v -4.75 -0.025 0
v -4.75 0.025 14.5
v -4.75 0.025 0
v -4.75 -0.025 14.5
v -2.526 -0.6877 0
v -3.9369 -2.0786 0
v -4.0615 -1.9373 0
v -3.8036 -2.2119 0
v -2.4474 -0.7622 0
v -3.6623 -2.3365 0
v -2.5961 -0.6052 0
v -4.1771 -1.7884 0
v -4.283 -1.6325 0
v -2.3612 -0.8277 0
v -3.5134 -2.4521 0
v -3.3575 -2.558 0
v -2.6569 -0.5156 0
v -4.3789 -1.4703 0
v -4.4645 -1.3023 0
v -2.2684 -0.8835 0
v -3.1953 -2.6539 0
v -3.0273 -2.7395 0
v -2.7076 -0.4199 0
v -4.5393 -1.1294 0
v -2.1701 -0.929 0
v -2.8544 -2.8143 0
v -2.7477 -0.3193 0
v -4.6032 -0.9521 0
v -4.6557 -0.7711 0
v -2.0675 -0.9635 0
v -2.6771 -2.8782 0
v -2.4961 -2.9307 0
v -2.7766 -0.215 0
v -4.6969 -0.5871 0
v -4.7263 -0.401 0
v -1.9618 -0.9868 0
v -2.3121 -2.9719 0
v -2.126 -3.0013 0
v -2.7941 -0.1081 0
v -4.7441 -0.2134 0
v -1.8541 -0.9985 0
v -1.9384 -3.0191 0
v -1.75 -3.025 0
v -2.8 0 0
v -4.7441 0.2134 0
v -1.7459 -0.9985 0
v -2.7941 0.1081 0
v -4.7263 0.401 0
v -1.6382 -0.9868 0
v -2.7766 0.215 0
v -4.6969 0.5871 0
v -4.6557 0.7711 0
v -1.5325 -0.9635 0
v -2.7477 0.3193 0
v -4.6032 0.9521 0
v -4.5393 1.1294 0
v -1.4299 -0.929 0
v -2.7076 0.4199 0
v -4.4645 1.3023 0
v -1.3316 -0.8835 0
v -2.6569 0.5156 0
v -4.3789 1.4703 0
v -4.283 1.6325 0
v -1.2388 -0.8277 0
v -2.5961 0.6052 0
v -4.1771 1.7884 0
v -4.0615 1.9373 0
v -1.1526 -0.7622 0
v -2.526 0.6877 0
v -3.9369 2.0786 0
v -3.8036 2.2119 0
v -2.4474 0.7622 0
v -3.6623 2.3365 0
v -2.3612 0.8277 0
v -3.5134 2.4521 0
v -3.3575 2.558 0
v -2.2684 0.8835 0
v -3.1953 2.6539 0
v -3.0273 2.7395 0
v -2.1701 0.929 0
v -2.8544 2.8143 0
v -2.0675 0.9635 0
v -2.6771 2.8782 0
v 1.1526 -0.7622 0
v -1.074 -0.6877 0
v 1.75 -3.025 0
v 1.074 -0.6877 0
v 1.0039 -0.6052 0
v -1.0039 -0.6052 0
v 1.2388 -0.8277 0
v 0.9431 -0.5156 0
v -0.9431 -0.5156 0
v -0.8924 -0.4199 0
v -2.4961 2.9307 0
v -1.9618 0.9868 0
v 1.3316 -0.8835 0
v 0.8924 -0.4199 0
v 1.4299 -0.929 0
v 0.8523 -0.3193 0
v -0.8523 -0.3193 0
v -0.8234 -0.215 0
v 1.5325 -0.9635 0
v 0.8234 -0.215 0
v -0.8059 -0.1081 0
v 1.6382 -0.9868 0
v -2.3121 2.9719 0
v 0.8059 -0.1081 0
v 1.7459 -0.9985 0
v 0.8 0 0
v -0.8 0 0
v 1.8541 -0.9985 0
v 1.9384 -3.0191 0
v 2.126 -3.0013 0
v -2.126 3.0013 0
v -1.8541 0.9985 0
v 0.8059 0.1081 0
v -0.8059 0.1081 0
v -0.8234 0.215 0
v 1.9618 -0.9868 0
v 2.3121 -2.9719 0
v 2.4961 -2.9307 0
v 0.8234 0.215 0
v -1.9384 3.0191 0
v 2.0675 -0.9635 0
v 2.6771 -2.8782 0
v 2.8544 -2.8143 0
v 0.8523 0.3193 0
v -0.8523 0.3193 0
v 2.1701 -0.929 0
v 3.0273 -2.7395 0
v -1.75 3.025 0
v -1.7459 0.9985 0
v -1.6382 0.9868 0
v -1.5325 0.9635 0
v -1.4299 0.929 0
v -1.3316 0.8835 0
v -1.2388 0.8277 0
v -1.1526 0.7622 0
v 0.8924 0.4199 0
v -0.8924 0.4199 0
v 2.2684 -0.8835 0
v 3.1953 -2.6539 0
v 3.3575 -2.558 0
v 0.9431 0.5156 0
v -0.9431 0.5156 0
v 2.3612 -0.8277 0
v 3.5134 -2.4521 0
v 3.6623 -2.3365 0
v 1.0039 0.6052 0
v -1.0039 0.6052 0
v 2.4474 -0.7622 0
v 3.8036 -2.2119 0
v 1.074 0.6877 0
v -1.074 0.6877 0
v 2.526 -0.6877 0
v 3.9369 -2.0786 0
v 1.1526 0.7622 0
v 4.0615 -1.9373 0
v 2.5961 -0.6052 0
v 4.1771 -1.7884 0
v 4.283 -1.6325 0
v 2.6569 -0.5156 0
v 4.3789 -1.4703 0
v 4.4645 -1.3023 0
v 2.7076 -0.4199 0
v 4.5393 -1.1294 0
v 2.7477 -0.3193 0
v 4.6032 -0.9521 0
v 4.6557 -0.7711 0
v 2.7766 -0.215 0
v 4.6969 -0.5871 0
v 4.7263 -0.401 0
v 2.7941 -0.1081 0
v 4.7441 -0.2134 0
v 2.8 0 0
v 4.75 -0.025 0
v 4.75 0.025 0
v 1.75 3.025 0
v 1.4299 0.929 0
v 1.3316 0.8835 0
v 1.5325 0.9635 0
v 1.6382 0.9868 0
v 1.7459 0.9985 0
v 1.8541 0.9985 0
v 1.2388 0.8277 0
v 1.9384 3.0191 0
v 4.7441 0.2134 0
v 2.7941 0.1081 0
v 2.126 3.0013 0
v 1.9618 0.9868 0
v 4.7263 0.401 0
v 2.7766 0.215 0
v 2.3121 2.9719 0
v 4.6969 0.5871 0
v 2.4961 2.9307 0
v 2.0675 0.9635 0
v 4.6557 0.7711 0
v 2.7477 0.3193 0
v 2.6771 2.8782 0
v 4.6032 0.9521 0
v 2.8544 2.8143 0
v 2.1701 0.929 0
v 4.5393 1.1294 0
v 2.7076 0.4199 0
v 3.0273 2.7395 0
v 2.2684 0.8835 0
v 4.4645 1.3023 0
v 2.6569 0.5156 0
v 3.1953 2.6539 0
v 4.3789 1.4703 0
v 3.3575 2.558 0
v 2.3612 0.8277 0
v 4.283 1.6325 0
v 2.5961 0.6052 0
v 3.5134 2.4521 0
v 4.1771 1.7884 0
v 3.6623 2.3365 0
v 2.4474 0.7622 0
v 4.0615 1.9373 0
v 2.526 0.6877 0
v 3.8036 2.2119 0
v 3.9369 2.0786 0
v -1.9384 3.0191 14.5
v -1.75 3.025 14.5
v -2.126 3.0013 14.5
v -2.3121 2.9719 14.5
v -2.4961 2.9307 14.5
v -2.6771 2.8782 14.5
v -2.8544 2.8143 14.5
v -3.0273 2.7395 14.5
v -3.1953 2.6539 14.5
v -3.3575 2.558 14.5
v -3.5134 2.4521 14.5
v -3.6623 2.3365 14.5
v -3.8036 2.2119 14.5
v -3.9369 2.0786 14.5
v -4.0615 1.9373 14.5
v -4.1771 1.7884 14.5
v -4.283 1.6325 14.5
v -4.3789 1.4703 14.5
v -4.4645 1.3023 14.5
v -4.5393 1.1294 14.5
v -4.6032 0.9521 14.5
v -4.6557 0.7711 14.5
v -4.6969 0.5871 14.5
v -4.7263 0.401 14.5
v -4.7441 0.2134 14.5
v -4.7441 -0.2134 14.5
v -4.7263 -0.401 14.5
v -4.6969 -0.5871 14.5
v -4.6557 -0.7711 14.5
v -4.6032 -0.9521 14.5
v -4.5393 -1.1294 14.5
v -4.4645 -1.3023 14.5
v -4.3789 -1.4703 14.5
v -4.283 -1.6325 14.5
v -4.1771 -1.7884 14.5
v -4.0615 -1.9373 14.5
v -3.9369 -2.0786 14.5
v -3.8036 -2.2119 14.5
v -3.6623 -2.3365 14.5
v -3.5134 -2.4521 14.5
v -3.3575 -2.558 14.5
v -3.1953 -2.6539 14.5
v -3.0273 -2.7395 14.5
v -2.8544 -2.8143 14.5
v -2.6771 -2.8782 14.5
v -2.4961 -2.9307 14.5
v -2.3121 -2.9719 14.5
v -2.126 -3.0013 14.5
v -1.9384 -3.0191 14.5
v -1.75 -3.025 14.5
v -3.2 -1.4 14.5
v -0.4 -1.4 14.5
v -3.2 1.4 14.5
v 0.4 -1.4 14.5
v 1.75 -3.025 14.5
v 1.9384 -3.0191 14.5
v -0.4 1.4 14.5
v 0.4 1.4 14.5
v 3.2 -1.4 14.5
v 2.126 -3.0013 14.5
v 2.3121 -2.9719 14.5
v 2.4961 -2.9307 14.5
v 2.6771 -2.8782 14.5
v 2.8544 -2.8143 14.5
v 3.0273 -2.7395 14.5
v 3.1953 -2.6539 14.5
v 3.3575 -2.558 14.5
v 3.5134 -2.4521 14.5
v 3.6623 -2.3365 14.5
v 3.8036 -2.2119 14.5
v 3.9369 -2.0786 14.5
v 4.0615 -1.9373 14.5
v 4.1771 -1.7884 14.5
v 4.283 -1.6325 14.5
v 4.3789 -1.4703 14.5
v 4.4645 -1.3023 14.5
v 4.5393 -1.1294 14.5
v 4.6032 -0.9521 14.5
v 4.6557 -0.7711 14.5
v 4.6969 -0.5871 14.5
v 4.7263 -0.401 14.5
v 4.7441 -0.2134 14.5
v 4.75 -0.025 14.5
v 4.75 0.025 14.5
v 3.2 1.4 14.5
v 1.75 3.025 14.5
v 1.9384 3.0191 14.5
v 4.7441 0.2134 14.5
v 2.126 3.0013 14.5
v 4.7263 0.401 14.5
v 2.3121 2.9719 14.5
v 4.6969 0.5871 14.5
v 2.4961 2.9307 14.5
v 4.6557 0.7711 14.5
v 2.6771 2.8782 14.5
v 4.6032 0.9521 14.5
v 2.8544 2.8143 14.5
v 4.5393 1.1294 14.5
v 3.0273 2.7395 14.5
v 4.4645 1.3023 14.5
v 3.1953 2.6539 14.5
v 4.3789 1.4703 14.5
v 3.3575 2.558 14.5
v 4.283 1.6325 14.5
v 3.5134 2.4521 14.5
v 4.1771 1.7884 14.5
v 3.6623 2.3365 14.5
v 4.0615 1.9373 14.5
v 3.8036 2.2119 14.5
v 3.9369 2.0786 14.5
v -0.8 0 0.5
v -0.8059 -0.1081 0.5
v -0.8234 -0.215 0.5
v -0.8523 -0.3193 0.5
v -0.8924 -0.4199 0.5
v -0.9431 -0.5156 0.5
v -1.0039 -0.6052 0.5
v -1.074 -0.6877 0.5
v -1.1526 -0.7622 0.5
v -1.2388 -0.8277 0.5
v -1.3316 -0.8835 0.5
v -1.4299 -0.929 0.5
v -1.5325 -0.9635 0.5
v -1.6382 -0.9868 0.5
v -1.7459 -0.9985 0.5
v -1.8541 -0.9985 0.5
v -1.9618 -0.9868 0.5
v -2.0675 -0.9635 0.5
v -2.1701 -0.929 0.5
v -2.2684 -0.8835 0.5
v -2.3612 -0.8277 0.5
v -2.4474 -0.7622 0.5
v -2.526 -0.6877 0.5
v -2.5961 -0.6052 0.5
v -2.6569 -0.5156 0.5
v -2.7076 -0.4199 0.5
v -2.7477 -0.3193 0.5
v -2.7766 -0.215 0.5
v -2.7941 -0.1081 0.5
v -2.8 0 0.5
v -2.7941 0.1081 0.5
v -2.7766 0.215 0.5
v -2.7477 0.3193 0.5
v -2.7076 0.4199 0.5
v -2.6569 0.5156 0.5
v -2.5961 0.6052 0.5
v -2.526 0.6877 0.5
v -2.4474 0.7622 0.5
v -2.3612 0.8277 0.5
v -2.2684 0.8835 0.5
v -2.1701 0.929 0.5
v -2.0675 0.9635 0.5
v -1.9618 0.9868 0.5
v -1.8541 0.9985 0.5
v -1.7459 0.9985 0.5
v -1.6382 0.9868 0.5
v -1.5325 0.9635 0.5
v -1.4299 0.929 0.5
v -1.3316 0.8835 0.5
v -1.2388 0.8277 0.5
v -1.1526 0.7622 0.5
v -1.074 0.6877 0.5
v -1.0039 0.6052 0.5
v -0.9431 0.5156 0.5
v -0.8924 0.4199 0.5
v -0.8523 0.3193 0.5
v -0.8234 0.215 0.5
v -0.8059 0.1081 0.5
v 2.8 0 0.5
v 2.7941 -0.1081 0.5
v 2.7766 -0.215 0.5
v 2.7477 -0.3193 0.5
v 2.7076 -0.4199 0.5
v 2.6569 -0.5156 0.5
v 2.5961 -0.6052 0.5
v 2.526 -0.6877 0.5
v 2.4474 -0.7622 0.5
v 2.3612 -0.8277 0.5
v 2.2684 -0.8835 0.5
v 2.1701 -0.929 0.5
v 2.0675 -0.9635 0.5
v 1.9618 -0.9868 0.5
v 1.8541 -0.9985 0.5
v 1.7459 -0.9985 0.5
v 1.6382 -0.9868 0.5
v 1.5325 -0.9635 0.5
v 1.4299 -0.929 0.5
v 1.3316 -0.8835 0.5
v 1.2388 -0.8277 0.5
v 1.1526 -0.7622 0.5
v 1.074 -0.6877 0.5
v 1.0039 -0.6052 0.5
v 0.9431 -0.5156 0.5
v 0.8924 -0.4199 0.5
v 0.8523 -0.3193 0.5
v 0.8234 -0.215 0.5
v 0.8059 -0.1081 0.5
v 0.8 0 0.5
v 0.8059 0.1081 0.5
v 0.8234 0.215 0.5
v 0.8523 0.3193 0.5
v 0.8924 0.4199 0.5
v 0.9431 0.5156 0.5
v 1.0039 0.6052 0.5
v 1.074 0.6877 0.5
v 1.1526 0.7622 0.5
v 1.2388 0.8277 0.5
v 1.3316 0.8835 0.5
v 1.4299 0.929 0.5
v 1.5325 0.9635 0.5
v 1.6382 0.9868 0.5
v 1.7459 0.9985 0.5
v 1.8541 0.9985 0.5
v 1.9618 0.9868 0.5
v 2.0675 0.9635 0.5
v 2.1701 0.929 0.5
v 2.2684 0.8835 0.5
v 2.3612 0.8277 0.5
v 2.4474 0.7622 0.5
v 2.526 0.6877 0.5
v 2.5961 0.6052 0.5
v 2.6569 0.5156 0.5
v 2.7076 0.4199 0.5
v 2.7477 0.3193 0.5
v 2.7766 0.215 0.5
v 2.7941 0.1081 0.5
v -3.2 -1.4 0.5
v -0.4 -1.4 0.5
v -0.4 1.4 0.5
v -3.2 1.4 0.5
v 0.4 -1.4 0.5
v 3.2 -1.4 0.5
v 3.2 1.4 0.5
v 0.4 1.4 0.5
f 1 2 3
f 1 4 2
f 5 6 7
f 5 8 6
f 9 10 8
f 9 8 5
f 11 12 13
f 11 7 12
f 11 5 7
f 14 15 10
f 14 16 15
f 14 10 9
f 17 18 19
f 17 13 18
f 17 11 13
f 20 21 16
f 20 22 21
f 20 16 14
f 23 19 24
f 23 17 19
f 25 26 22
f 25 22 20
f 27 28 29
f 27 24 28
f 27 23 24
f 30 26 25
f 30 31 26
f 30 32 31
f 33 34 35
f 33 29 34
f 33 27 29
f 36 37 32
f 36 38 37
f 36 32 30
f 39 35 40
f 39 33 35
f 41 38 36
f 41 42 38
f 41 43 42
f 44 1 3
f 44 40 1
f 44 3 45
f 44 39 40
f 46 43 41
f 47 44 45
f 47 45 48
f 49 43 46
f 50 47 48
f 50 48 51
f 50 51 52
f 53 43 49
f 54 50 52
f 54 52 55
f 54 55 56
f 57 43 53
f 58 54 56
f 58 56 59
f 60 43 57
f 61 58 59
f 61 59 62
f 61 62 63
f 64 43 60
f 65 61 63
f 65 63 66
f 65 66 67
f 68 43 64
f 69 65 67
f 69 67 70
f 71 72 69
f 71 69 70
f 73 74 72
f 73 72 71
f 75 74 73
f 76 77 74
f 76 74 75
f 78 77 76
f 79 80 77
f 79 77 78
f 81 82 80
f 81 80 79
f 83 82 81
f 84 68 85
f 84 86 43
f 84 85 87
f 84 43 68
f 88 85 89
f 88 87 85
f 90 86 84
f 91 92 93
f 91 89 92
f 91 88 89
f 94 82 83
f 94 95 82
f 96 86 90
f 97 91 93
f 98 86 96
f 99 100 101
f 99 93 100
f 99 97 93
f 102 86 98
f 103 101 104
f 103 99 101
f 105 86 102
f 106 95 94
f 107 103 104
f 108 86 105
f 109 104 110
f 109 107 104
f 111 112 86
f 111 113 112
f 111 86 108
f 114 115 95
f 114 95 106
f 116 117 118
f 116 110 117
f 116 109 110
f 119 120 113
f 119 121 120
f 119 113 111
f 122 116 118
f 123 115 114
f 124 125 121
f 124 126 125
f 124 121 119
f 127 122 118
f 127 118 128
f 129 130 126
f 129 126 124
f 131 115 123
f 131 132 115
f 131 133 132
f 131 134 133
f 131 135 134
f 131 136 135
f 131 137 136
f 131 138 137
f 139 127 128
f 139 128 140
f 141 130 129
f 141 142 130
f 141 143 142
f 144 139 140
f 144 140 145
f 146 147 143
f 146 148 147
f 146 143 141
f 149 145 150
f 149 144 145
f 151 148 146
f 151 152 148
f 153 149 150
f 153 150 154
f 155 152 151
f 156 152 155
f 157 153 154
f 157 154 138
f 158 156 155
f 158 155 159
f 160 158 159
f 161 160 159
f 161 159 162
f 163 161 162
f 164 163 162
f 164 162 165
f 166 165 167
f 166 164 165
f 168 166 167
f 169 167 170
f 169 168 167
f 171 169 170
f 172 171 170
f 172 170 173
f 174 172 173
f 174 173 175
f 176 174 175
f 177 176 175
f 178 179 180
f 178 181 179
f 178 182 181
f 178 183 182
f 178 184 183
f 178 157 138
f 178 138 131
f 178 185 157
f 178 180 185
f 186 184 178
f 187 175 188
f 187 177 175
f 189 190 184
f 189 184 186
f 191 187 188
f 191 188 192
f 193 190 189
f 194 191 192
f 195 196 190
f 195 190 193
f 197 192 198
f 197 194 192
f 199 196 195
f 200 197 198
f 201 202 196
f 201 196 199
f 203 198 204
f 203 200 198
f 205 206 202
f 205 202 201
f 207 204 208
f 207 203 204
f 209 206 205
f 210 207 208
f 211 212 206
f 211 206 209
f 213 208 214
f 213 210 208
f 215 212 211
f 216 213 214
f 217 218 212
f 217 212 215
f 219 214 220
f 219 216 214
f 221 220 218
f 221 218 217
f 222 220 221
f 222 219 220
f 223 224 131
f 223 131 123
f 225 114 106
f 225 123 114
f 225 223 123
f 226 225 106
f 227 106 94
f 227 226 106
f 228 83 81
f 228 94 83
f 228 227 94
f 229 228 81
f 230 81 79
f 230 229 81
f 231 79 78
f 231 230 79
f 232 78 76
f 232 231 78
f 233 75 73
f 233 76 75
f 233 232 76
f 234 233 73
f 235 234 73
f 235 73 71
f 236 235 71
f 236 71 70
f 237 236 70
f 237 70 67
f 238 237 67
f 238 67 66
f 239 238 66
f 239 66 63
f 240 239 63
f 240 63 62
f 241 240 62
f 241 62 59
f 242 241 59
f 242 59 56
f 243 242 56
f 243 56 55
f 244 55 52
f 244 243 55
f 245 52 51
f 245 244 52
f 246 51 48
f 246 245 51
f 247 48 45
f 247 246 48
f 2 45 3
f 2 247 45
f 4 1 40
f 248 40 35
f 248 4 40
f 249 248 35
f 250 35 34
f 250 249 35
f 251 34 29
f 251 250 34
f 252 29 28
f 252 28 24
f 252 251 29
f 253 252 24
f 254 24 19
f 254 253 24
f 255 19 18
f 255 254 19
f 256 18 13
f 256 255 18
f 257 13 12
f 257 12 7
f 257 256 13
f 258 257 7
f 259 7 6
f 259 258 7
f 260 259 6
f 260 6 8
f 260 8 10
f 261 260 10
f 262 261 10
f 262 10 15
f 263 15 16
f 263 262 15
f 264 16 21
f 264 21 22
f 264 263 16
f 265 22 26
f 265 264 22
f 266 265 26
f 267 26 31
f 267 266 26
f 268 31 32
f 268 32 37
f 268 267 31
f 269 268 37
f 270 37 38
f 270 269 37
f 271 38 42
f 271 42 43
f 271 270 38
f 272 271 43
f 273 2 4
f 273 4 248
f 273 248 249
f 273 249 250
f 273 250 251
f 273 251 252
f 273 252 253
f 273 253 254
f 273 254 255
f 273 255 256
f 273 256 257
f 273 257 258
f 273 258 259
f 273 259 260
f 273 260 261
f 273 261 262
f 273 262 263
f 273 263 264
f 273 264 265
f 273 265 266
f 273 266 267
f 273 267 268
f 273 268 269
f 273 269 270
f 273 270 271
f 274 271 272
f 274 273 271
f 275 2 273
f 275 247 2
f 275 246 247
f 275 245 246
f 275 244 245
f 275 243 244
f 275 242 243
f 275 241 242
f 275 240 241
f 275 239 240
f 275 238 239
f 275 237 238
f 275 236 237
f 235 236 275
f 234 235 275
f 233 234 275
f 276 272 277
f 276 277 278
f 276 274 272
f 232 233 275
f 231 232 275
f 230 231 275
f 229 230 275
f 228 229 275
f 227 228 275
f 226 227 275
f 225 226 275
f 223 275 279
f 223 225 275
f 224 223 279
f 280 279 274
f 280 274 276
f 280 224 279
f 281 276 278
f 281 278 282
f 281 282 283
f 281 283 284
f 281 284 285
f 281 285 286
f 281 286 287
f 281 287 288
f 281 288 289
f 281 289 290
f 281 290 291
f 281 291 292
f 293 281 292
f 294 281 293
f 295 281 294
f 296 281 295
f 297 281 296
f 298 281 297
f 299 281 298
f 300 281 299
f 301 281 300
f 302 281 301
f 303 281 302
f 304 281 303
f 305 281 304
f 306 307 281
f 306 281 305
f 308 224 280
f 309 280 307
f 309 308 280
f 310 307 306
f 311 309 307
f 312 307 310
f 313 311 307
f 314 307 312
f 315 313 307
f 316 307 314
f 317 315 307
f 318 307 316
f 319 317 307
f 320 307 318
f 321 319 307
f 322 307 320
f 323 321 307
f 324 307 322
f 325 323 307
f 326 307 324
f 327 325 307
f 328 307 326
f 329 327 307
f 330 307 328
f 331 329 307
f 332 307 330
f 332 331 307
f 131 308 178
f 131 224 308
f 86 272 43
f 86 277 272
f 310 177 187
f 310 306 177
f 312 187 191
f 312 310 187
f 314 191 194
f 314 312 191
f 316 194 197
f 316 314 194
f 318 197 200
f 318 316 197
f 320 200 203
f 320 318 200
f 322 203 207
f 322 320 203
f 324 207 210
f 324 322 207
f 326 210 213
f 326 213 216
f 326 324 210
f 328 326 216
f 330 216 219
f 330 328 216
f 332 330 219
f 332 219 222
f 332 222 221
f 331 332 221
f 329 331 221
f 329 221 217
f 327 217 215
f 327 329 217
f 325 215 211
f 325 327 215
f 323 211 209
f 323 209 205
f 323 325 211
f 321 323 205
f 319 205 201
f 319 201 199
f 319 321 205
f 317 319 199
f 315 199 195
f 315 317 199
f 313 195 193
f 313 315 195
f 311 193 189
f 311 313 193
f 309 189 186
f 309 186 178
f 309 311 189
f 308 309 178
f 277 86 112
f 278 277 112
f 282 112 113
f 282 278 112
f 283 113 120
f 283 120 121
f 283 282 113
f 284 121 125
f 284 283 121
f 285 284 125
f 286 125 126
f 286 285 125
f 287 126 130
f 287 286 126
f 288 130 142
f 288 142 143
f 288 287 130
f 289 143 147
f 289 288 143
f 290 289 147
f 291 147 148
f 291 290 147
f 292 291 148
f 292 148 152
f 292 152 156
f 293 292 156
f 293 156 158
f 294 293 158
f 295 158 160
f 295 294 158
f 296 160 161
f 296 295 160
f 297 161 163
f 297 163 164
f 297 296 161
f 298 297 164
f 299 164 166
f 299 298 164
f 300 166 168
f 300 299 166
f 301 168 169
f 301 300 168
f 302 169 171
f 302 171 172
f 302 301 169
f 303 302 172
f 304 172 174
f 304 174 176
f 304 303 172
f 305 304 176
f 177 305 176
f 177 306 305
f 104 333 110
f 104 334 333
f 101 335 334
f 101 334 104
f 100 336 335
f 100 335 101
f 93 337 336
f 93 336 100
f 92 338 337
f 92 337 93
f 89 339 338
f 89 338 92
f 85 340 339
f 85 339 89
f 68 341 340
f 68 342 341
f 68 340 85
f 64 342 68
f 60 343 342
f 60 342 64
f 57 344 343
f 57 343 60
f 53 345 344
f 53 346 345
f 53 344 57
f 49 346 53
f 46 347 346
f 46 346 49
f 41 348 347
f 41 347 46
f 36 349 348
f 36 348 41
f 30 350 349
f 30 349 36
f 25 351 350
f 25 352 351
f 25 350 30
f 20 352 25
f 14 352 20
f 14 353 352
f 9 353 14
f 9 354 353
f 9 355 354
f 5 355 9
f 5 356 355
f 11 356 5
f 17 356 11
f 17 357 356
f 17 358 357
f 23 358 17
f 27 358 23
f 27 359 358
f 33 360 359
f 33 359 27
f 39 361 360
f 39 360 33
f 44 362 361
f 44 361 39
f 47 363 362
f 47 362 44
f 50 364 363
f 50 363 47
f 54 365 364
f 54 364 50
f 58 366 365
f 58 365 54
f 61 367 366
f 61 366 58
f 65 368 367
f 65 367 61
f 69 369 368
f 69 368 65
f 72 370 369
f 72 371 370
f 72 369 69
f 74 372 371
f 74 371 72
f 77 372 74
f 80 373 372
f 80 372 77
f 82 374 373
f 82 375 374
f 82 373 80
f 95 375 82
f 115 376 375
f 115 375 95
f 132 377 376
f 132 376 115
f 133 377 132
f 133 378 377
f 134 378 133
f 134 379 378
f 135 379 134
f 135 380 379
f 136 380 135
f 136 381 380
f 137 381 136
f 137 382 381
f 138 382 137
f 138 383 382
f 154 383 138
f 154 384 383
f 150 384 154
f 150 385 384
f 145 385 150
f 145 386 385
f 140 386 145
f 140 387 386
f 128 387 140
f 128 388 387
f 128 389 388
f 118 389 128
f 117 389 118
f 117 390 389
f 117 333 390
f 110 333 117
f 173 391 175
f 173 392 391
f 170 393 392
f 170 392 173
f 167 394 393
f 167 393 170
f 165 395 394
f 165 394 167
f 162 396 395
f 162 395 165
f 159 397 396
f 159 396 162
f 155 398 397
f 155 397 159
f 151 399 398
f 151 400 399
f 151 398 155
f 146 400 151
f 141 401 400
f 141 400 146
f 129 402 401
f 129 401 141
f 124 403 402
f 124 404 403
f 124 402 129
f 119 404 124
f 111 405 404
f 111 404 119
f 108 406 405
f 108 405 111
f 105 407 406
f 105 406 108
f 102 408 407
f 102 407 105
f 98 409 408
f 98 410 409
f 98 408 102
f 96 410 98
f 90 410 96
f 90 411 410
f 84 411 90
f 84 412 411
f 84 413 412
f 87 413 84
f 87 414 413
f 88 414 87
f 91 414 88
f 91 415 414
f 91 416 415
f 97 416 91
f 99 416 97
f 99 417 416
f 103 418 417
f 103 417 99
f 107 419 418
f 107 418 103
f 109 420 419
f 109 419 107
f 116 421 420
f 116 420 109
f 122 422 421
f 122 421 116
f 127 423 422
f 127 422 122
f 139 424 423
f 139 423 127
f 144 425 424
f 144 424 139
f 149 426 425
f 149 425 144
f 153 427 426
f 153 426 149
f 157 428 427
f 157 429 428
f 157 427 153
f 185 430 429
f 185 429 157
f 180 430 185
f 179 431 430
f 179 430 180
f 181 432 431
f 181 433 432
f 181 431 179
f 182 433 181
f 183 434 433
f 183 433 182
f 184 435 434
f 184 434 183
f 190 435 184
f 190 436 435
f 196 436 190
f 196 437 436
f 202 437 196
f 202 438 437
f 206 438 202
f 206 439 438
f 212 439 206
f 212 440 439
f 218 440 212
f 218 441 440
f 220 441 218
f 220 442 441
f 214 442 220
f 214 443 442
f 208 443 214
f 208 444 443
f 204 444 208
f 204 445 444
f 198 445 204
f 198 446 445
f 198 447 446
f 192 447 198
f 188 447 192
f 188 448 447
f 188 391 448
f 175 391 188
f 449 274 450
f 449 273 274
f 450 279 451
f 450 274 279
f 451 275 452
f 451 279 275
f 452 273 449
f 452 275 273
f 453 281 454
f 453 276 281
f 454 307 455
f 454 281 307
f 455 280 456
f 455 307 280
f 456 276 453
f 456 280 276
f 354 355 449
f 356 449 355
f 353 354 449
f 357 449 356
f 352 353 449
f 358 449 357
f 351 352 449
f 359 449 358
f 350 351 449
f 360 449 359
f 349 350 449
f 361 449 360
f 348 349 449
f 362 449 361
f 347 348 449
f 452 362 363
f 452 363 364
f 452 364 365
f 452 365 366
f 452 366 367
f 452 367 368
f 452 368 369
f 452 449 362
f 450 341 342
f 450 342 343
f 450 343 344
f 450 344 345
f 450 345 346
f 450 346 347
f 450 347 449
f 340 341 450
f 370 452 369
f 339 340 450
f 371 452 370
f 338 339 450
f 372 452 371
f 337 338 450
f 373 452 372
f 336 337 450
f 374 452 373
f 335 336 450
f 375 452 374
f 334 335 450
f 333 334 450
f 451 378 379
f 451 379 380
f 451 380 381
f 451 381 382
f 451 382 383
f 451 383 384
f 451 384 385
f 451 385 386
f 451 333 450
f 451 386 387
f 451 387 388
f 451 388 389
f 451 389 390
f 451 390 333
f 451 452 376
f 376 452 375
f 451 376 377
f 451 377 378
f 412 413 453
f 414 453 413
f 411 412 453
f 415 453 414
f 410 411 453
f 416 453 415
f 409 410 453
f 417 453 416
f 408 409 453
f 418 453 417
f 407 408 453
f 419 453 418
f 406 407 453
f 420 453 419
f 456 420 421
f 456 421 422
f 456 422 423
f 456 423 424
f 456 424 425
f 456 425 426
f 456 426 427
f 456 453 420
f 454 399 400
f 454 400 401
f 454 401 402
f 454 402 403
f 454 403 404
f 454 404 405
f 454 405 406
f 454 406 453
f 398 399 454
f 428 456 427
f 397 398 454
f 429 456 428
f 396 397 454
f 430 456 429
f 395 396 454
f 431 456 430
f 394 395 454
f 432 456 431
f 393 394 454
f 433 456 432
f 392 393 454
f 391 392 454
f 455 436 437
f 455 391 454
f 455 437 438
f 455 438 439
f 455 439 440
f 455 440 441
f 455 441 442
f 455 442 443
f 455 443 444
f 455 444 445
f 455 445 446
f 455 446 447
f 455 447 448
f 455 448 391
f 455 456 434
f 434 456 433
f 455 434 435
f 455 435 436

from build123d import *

# Parameters (mm, degrees)
SKETCH_W        = 9.5
SKETCH_H        = 6.05
PAD_DEPTH       = 14.5
FILLET_R        = 3
SKETCH001_R     = 1
POCKET_DEPTH    = 0.5
SKETCH003_W     = 2.8
SKETCH003_H     = 2.8
POCKET001_DEPTH = 14


with BuildPart() as part:
    # Sketch → Pad (new body)
    with BuildSketch(Plane.XY):
        Rectangle(SKETCH_W, SKETCH_H)
    extrude(amount=PAD_DEPTH)

    # Fillet
    fillet_edges = [part.edges().sort_by_distance(p)[0] for p in [
        (-4.75, -3.025, 7.25),
        (4.75, -3.025, 7.25),
        (4.75, 3.025, 7.25),
        (-4.75, 3.025, 7.25),
    ]]
    fillet(fillet_edges, radius=FILLET_R)

    # Sketch001 (on Face2 of Fillet) → Pocket (cut)
    with BuildSketch(Plane(origin=(0, 0, 0), x_dir=(1, 0, 0), z_dir=(0, 0, -1))):
        with Locations((1.8, 0)):
            Circle(SKETCH001_R)
        with Locations((-1.8, 0)):
            Circle(SKETCH001_R)
    extrude(amount=-POCKET_DEPTH, mode=Mode.SUBTRACT)

    # Sketch003 (on Face14 of Pocket) → Pocket001 (cut)
    with BuildSketch(Plane(origin=(0, 0, 0.5), x_dir=(1, 0, 0), z_dir=(0, 0, -1))):
        with Locations((1.8, 0)):
            Rectangle(SKETCH003_W, SKETCH003_H)
        with Locations((-1.8, 0)):
            Rectangle(SKETCH003_W, SKETCH003_H)
    extrude(amount=-POCKET001_DEPTH, mode=Mode.SUBTRACT)


solid = part.part
